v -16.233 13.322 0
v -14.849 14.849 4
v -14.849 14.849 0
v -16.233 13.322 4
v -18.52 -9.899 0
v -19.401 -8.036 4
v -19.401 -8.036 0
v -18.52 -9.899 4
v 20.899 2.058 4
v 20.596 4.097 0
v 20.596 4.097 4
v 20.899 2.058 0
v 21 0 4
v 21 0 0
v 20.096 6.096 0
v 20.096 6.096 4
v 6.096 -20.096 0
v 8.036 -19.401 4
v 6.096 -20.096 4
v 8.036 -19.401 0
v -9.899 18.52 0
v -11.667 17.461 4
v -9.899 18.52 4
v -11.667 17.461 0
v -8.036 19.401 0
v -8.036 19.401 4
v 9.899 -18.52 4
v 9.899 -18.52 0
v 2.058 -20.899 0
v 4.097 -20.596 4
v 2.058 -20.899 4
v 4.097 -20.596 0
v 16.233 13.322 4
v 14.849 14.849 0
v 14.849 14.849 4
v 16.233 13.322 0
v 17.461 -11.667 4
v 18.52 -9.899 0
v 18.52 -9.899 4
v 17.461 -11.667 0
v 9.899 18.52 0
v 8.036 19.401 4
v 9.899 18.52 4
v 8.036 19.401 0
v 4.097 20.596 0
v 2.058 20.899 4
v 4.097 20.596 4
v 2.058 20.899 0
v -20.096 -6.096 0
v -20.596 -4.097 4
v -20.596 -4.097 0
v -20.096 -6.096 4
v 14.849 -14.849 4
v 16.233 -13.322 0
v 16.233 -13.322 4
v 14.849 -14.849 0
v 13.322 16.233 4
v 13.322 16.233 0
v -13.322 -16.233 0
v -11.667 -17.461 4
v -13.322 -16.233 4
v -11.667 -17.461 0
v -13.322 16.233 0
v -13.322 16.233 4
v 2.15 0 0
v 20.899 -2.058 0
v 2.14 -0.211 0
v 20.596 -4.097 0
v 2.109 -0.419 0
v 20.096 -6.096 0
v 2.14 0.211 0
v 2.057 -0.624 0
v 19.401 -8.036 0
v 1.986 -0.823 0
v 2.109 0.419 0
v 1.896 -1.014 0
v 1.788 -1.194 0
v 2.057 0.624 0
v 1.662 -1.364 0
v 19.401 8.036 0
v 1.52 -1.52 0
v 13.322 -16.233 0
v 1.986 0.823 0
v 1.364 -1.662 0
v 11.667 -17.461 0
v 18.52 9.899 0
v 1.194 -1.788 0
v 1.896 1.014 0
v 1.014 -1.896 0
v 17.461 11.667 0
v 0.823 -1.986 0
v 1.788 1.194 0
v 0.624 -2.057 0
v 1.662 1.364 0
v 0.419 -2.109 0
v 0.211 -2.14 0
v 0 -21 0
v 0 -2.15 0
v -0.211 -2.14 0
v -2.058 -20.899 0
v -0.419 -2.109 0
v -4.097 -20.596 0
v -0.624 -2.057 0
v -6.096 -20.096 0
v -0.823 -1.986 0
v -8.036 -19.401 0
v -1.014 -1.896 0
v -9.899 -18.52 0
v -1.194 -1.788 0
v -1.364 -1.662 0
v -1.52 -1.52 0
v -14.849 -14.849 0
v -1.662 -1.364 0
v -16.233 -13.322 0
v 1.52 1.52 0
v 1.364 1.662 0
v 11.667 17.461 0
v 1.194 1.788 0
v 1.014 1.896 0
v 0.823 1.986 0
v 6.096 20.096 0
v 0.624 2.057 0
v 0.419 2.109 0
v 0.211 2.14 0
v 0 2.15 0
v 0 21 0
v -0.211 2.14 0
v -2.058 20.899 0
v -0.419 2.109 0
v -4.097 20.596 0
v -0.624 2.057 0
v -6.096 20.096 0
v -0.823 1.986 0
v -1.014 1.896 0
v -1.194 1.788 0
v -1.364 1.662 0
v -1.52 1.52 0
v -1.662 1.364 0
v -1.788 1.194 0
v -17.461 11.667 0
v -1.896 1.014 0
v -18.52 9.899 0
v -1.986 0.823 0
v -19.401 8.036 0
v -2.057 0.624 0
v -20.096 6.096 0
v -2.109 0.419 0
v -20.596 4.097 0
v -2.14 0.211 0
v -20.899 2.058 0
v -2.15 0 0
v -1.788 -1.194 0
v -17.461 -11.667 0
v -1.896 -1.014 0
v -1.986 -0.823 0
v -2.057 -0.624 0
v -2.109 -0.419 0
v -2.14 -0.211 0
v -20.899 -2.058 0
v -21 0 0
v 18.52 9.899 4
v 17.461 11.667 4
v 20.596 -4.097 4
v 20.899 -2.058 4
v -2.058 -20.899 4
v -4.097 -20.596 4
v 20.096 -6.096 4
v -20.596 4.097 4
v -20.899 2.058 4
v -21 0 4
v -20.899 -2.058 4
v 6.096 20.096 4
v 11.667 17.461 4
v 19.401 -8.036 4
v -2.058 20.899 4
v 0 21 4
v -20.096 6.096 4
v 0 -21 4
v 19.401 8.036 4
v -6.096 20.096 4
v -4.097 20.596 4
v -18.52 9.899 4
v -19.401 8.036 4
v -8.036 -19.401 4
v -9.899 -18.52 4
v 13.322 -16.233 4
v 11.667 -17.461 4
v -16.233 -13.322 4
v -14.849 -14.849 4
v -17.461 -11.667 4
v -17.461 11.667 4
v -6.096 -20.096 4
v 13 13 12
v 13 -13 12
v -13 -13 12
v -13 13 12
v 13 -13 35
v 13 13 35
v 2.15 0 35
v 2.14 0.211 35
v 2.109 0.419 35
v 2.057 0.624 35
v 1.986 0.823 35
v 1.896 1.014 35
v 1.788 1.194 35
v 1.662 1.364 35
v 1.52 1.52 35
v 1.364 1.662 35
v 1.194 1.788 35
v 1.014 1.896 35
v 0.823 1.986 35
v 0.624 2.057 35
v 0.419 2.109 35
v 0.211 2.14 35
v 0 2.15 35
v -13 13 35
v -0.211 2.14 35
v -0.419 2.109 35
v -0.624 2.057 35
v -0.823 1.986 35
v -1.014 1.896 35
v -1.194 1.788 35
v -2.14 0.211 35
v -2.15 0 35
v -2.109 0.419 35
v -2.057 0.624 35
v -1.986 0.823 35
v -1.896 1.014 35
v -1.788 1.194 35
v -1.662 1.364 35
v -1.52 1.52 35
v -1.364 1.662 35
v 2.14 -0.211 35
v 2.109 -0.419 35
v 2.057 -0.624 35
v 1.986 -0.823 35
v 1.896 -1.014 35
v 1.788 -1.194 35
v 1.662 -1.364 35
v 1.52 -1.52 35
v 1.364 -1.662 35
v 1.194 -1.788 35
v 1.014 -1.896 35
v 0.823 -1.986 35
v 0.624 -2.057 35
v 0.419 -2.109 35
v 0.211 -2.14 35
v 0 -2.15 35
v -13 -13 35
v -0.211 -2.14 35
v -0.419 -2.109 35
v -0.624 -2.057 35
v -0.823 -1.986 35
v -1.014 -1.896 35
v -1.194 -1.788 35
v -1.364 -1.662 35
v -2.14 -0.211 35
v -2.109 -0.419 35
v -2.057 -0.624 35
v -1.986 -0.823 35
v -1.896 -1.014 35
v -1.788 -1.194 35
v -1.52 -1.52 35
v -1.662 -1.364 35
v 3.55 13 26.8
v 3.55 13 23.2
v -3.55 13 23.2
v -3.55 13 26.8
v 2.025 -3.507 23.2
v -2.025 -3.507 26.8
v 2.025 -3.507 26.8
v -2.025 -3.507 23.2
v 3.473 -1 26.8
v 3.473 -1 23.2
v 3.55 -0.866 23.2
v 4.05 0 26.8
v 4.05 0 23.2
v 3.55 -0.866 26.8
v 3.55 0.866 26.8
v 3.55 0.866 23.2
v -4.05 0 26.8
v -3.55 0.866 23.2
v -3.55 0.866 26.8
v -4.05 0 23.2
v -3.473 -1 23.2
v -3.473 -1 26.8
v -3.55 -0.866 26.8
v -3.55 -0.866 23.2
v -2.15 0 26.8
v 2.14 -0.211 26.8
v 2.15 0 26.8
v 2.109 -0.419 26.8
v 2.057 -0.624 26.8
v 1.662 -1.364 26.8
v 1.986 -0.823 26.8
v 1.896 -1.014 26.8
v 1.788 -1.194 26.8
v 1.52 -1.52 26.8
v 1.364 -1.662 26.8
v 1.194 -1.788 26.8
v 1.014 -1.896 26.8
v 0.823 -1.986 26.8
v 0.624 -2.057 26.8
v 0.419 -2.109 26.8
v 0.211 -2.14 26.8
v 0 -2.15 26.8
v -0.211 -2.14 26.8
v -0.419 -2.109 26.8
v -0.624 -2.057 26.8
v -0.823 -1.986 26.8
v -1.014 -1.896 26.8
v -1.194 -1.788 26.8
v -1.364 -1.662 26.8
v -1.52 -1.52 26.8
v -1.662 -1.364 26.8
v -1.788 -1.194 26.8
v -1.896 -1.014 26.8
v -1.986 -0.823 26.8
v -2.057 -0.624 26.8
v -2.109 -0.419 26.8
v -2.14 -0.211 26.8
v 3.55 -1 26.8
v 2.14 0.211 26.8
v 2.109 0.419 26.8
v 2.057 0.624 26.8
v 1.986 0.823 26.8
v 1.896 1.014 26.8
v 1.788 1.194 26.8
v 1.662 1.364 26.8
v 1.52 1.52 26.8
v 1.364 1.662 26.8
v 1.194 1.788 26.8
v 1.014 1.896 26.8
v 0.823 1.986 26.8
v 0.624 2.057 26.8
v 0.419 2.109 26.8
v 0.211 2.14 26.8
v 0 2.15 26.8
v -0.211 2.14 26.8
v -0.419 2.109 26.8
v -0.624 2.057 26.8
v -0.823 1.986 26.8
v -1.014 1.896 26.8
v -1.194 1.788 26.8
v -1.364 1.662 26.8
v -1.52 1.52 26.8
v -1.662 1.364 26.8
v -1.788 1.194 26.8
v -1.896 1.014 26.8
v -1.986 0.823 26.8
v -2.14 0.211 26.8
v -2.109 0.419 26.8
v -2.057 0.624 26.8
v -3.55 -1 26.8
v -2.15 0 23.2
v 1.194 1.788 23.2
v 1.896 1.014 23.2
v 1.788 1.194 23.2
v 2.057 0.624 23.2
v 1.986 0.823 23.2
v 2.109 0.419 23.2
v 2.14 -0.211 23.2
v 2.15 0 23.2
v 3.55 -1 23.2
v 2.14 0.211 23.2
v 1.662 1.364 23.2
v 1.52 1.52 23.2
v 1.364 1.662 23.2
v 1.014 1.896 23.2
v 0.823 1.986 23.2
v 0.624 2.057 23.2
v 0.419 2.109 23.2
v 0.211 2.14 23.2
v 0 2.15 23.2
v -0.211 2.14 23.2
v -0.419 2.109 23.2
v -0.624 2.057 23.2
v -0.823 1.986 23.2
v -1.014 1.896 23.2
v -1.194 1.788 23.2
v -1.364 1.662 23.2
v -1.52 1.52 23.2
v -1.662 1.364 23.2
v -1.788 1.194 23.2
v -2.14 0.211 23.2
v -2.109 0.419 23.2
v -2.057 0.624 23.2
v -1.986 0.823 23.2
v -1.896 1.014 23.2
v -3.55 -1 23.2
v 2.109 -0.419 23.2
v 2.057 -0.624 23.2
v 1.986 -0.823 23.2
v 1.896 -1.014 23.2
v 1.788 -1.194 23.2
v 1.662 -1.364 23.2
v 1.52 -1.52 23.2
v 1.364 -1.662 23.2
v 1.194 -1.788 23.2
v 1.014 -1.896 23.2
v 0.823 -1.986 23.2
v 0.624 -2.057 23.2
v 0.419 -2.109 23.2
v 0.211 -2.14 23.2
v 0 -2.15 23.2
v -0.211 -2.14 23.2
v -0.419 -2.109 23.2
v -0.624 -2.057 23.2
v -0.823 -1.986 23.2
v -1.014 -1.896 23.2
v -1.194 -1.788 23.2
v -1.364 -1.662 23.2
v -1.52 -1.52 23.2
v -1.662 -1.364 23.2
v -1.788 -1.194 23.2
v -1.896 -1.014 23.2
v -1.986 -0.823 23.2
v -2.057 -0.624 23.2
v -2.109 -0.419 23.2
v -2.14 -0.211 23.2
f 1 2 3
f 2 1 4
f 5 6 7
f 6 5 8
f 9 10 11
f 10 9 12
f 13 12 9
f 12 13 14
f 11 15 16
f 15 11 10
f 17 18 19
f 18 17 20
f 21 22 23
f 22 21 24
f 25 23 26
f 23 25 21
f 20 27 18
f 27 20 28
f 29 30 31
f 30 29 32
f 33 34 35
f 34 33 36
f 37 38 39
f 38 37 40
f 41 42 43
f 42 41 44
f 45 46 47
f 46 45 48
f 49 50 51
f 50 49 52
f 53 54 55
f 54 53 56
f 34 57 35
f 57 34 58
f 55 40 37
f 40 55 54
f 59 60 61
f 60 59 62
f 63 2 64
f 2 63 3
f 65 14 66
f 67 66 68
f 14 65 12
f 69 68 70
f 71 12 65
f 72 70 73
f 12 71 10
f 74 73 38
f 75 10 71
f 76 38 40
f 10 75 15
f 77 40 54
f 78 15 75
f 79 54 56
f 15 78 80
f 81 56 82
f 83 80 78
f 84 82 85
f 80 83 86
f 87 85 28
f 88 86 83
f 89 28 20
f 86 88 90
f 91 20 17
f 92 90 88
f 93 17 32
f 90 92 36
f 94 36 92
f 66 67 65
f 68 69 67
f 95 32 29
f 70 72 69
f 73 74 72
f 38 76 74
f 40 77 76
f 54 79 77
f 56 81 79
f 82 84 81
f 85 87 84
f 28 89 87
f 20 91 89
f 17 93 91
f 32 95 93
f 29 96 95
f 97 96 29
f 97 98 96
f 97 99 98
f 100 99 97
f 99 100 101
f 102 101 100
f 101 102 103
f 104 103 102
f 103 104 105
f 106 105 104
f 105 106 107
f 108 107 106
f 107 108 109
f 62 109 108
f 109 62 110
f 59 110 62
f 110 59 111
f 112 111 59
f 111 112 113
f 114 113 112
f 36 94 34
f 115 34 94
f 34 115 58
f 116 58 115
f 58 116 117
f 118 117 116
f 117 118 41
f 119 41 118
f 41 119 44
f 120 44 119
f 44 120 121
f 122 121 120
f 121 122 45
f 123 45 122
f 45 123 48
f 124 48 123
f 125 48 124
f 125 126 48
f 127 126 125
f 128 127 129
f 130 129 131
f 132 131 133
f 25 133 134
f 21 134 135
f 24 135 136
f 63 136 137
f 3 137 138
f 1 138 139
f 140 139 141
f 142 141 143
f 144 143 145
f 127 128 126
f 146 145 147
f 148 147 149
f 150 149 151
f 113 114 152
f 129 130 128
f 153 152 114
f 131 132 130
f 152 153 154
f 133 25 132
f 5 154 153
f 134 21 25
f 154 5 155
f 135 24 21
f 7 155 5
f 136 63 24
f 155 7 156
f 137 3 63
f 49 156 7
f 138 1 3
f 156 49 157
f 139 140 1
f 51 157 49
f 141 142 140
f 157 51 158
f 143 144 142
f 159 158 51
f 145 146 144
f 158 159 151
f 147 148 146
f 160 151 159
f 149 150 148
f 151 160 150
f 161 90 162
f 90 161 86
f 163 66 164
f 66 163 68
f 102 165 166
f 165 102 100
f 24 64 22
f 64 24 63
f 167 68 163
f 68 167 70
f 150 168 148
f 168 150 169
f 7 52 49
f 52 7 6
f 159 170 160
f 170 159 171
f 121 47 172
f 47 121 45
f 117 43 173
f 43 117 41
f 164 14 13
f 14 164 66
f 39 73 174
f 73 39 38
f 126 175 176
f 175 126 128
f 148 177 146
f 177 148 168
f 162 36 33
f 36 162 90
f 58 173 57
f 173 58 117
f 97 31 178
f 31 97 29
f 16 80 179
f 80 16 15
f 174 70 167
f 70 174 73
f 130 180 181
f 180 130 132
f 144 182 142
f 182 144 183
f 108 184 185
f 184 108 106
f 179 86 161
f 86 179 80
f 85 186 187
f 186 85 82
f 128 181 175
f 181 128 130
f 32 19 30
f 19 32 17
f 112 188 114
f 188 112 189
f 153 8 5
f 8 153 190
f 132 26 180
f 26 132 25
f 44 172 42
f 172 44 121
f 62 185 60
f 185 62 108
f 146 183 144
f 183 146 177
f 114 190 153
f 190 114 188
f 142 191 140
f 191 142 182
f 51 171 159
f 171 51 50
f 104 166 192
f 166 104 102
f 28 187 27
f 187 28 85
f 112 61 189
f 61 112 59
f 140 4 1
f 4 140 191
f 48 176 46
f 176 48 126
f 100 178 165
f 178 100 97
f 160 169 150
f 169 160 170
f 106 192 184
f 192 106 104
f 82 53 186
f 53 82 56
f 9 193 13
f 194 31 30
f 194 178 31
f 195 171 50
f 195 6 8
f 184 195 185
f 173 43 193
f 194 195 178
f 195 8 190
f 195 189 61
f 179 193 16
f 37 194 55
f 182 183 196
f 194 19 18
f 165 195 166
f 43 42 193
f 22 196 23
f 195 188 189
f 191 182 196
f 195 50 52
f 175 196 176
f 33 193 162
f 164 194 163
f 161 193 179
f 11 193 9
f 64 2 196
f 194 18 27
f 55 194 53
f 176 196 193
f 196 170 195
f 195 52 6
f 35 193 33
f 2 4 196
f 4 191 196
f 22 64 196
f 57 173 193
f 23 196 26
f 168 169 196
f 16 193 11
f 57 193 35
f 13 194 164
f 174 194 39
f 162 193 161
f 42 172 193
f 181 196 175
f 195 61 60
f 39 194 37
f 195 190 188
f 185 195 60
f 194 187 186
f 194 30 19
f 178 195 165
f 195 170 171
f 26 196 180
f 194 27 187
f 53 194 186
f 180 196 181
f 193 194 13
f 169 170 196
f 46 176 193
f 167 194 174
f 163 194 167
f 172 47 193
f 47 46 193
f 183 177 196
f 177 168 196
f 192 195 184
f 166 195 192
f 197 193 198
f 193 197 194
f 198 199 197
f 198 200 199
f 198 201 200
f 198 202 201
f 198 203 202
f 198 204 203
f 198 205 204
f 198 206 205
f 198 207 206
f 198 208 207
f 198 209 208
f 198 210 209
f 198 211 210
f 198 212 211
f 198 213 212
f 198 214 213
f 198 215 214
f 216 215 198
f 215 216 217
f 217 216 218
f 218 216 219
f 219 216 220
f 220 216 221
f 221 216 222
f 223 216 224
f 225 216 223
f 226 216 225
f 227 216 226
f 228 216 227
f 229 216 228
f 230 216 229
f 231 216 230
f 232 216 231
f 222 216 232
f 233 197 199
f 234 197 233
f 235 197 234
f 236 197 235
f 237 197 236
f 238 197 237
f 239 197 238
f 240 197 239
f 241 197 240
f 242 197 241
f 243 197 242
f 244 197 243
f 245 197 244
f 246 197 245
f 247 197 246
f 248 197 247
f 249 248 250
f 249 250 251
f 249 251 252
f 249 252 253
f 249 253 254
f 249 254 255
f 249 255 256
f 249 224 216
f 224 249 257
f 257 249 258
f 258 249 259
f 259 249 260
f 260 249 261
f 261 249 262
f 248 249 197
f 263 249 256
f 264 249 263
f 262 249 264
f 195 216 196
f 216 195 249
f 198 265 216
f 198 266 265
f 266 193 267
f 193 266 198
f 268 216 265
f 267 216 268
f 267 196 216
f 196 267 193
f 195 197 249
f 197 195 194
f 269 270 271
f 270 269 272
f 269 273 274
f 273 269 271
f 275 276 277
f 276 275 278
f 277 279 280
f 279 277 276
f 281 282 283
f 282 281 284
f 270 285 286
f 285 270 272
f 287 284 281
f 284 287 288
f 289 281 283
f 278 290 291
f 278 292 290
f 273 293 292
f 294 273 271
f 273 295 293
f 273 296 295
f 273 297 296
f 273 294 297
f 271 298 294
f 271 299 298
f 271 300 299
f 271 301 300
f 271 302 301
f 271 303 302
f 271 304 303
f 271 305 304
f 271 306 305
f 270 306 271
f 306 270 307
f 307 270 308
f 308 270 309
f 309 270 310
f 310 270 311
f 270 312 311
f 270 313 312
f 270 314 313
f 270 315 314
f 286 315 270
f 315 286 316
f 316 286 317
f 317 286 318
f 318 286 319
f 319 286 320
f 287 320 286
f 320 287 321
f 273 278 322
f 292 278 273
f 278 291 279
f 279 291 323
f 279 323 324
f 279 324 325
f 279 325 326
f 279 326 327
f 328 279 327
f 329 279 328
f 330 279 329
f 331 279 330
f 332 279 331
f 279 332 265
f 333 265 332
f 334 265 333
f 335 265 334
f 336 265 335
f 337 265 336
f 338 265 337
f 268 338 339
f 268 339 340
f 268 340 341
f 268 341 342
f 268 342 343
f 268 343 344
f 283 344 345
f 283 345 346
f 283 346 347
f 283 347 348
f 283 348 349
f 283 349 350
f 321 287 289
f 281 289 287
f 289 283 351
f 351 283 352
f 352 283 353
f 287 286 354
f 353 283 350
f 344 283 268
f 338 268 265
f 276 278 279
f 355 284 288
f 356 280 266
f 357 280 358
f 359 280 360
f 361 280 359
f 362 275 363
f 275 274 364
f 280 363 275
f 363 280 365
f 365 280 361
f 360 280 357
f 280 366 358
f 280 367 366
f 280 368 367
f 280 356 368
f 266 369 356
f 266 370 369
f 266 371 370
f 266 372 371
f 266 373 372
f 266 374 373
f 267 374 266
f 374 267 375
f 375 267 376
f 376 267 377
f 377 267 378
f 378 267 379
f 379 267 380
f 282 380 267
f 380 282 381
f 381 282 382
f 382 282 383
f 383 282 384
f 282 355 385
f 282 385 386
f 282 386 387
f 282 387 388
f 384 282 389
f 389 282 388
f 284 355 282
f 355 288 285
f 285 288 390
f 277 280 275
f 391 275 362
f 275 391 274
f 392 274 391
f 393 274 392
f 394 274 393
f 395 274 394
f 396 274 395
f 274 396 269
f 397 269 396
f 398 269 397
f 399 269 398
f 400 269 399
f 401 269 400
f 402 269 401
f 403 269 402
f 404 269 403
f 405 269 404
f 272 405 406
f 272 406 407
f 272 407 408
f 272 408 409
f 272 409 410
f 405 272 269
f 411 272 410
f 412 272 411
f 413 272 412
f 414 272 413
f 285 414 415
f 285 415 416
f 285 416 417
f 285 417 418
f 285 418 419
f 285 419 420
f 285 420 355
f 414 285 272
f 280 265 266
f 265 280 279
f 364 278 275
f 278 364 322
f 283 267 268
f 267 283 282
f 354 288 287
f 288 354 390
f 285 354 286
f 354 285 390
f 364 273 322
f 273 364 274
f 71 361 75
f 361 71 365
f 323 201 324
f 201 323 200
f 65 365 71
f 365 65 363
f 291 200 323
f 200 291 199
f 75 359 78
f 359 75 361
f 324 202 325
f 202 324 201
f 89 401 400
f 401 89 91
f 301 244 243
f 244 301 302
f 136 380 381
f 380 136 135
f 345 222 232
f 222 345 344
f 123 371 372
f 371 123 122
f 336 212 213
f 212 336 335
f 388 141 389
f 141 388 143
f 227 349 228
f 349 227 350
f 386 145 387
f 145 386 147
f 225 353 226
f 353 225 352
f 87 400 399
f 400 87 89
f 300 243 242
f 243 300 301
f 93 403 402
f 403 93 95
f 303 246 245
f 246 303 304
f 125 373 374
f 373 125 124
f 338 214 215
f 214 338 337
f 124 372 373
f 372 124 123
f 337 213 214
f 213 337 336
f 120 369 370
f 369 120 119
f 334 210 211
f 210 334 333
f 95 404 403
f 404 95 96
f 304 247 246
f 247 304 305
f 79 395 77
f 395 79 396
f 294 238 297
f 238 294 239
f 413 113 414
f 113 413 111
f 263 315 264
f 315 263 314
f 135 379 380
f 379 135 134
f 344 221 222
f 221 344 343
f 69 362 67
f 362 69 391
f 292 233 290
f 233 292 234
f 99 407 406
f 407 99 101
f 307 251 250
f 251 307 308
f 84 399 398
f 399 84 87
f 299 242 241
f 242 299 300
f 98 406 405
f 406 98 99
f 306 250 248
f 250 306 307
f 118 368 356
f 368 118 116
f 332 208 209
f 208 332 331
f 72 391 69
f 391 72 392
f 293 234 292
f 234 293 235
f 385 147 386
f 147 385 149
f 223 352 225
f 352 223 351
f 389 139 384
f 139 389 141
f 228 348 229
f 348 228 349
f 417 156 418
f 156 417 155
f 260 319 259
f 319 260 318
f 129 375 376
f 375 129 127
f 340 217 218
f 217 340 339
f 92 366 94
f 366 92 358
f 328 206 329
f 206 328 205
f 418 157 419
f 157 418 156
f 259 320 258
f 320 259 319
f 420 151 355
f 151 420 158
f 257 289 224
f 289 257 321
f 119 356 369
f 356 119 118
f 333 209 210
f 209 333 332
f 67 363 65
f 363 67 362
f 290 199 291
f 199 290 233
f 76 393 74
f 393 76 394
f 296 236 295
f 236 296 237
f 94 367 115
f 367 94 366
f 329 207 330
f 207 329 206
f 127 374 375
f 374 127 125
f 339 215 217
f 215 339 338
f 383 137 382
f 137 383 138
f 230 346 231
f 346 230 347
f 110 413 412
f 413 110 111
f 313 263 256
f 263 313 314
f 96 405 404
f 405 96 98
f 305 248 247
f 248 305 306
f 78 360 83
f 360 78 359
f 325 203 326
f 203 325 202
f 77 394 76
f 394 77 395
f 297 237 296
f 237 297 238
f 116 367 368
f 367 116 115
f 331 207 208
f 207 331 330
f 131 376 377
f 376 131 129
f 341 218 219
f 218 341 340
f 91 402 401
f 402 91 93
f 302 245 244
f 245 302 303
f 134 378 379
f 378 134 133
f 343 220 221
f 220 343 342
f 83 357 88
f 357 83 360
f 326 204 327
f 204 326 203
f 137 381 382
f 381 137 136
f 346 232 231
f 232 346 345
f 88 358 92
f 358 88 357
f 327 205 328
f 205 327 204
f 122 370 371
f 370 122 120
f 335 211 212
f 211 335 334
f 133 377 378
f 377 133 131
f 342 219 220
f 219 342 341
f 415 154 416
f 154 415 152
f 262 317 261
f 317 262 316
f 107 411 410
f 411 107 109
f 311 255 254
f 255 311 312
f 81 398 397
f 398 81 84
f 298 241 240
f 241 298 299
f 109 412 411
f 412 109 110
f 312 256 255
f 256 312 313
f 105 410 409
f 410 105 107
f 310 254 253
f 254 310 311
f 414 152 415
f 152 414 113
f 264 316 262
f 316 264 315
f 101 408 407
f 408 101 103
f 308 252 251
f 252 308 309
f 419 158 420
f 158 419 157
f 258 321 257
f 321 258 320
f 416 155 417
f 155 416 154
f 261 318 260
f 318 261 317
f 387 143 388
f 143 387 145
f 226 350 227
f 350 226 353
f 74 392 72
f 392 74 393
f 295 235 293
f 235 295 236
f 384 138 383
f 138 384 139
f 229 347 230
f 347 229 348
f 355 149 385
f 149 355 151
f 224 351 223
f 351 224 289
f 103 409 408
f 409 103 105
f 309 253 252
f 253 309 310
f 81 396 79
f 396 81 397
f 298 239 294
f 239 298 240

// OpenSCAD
// file: config.scad
// =============================================================================
// ProArt PA602 - Support GPU Externe sur vis PSU
// Fichier : config.scad
// Description : Paramètres généraux du modèle OpenSCAD
// =============================================================================

/* [Qualité de rendu] */
$fn = $preview ? 32 : 64;

/* [Dégagement et Positionnement] */
// Déport libre entre la face arrière du boîtier et le plateau du riser (mm)
// Laisse la place à la fiche secteur C13/C14 (45mm), aux câbles et au flux d'air
standoff_depth = 60; // [45:5:110]

// Hauteur du plateau riser par rapport au centre de l'alimentation ATX (mm)
// (Le haut du PSU est à +43mm ; 60mm place le riser juste au-dessus de l'alim, face aux slots PCIe)
riser_elevation_from_psu_center = 60; // [30:5:140]

// Épaisseur des bras structurels (mm)
arm_thickness = 10.0;
flange_width  = 26.0;

/* [Interface Alimentation (Norme ATX)] */
// Dimensions de la face arrière de l'alimentation ATX standard (mm)
atx_psu_width  = 150.0;
atx_psu_height = 86.0;

// Largeur et hauteur hors-tout de la platine PSU (mm)
psu_plate_width     = 172.0; // S'étend à X = ±86mm pour dégager les vis du riser
psu_plate_height    = 98.0;  // S'étend à Z = ±49mm
psu_plate_thickness = 5.0;

// Diamètre des trous de vis PSU (vis standard 6-32 UNC = ~3.5mm, 4.0mm pour tolérance)
psu_screw_hole_d = 4.0;
psu_screw_head_d = 7.8;

// Découpe centrale pour la prise secteur C13/C14 et l'interrupteur I/O
psu_receptacle_width  = 104.0;
psu_receptacle_height = 50.0;

/* [Interface Riser PCIe] */
// Entraxe des trous de vis de fixation du riser PCB (mm)
// Typiquement 108mm (Linkup, ADT-Link, Lian-Li), 125mm ou 100mm selon modèle
riser_hole_spacing_x = 108.0;

// Entraxe en Y si le riser possède 4 trous (mettre 0 si seulement 2 trous centrés)
riser_hole_spacing_y = 0.0;

// Position en Y de l'axe du connecteur PCIe sur le plateau (mm depuis le bord arrière du plateau)
riser_Axis_y = 20.0;

// Diamètre des vis de fixation du riser (M3 standard = 3.2mm de perçage)
riser_screw_d = 3.2;

// Hauteur des entretoises sous le PCB du riser (mm)
riser_standoff_h = 5.0;

// Dimensions du plateau Riser (mm)
riser_tray_width     = psu_plate_width; // 172.0 mm
riser_tray_depth     = 75.0;            // Profondeur accueillant un GPU 3 à 3.5 slots
riser_tray_thickness = 5.0;

// Fente de passage pour nappe souple sous le riser (compatible risers 90° et 180°)
riser_cable_slot_w = 92.0;
riser_cable_slot_d = 14.0;

/* [Tour de verrouillage Équerre PCIe (PCIe Bracket Tower)] */
// Nombre de slots du GPU (2, 2.5, 3 ou 3.5 slots)
gpu_slots = 3;

// Hauteur standard de l'équerre métallique PCIe au-dessus du PCB du riser (mm)
pcie_bracket_screw_h = 112.0;

// Pas standard entre slots PCIe (20.32 mm / 0.8 pouce)
pcie_slot_pitch = 20.32;

// Largeur utile de retenue de l'équerre (selon le nombre de slots)
pcie_bracket_width = gpu_slots * pcie_slot_pitch + 4.0;

/* [Jambe d'appui au sol / bureau (Optionnelle)] */
// Décharge 100% du poids vertical (1.5 à 2.5 kg) sur le bureau/sol
enable_support_foot = true;

// Hauteur entre le bas de la platine PSU (Z = -49mm) et le sol/bureau (mm)
support_foot_height = 35.0; // [15:5:120]
// main file
// =============================================================================
// ProArt PA602 - Support GPU Externe sur vis PSU
// Fichier : support_foot.scad
// Description : Pied d'appui vertical sous les poutres du support PSU
//               Reprend 100% de la charge verticale vers le bureau/sol
// =============================================================================

include <config.scad>;

module support_foot(h = support_foot_height) {
    if (enable_support_foot && h > 0) {
        col_w    = flange_width; // 26.0 mm
        col_d    = 26.0;
        pad_diam = 42.0;
        pad_h    = 4.0;

        difference() {
            union() {
                // 1. Patin circulaire élargi à la base (centré en X=0, Y=0)
                cylinder(d = pad_diam, h = pad_h);

                // 2. Transition conique à 45° entre le patin et le fût carré
                hull() {
                    cylinder(d = pad_diam, h = pad_h);
                    translate([-col_w/2, -col_d/2, min(h, pad_h + 8.0) - 1])
                        cube([col_w, col_d, 1]);
                }

                // 3. Fût vertical venant en butée sous la semelle inférieure du psu_bracket
                translate([-col_w/2, -col_d/2, 0])
                    cube([col_w, col_d, h]);
            }

            // A. Perçage vertical M4 centré (aligné avec la vis de la semelle inférieure)
            translate([0, 0, -1])
                cylinder(d = 4.3, h = h + 2);

            // B. Logement latéral pour écrou M4 captif (à 10mm sous le sommet du pied)
            if (h >= 18) {
                translate([0, 0, h - 10]) {
                    cylinder(d = 8.1, h = 3.6, center = true, $fn = 6);
                    // Fente d'insertion latérale de l'écrou M4
                    translate([0, col_d/4, 0])
                        cube([7.1, col_d/2 + 2, 3.6], center = true);
                }
            }
        }
    }
}

support_foot();
